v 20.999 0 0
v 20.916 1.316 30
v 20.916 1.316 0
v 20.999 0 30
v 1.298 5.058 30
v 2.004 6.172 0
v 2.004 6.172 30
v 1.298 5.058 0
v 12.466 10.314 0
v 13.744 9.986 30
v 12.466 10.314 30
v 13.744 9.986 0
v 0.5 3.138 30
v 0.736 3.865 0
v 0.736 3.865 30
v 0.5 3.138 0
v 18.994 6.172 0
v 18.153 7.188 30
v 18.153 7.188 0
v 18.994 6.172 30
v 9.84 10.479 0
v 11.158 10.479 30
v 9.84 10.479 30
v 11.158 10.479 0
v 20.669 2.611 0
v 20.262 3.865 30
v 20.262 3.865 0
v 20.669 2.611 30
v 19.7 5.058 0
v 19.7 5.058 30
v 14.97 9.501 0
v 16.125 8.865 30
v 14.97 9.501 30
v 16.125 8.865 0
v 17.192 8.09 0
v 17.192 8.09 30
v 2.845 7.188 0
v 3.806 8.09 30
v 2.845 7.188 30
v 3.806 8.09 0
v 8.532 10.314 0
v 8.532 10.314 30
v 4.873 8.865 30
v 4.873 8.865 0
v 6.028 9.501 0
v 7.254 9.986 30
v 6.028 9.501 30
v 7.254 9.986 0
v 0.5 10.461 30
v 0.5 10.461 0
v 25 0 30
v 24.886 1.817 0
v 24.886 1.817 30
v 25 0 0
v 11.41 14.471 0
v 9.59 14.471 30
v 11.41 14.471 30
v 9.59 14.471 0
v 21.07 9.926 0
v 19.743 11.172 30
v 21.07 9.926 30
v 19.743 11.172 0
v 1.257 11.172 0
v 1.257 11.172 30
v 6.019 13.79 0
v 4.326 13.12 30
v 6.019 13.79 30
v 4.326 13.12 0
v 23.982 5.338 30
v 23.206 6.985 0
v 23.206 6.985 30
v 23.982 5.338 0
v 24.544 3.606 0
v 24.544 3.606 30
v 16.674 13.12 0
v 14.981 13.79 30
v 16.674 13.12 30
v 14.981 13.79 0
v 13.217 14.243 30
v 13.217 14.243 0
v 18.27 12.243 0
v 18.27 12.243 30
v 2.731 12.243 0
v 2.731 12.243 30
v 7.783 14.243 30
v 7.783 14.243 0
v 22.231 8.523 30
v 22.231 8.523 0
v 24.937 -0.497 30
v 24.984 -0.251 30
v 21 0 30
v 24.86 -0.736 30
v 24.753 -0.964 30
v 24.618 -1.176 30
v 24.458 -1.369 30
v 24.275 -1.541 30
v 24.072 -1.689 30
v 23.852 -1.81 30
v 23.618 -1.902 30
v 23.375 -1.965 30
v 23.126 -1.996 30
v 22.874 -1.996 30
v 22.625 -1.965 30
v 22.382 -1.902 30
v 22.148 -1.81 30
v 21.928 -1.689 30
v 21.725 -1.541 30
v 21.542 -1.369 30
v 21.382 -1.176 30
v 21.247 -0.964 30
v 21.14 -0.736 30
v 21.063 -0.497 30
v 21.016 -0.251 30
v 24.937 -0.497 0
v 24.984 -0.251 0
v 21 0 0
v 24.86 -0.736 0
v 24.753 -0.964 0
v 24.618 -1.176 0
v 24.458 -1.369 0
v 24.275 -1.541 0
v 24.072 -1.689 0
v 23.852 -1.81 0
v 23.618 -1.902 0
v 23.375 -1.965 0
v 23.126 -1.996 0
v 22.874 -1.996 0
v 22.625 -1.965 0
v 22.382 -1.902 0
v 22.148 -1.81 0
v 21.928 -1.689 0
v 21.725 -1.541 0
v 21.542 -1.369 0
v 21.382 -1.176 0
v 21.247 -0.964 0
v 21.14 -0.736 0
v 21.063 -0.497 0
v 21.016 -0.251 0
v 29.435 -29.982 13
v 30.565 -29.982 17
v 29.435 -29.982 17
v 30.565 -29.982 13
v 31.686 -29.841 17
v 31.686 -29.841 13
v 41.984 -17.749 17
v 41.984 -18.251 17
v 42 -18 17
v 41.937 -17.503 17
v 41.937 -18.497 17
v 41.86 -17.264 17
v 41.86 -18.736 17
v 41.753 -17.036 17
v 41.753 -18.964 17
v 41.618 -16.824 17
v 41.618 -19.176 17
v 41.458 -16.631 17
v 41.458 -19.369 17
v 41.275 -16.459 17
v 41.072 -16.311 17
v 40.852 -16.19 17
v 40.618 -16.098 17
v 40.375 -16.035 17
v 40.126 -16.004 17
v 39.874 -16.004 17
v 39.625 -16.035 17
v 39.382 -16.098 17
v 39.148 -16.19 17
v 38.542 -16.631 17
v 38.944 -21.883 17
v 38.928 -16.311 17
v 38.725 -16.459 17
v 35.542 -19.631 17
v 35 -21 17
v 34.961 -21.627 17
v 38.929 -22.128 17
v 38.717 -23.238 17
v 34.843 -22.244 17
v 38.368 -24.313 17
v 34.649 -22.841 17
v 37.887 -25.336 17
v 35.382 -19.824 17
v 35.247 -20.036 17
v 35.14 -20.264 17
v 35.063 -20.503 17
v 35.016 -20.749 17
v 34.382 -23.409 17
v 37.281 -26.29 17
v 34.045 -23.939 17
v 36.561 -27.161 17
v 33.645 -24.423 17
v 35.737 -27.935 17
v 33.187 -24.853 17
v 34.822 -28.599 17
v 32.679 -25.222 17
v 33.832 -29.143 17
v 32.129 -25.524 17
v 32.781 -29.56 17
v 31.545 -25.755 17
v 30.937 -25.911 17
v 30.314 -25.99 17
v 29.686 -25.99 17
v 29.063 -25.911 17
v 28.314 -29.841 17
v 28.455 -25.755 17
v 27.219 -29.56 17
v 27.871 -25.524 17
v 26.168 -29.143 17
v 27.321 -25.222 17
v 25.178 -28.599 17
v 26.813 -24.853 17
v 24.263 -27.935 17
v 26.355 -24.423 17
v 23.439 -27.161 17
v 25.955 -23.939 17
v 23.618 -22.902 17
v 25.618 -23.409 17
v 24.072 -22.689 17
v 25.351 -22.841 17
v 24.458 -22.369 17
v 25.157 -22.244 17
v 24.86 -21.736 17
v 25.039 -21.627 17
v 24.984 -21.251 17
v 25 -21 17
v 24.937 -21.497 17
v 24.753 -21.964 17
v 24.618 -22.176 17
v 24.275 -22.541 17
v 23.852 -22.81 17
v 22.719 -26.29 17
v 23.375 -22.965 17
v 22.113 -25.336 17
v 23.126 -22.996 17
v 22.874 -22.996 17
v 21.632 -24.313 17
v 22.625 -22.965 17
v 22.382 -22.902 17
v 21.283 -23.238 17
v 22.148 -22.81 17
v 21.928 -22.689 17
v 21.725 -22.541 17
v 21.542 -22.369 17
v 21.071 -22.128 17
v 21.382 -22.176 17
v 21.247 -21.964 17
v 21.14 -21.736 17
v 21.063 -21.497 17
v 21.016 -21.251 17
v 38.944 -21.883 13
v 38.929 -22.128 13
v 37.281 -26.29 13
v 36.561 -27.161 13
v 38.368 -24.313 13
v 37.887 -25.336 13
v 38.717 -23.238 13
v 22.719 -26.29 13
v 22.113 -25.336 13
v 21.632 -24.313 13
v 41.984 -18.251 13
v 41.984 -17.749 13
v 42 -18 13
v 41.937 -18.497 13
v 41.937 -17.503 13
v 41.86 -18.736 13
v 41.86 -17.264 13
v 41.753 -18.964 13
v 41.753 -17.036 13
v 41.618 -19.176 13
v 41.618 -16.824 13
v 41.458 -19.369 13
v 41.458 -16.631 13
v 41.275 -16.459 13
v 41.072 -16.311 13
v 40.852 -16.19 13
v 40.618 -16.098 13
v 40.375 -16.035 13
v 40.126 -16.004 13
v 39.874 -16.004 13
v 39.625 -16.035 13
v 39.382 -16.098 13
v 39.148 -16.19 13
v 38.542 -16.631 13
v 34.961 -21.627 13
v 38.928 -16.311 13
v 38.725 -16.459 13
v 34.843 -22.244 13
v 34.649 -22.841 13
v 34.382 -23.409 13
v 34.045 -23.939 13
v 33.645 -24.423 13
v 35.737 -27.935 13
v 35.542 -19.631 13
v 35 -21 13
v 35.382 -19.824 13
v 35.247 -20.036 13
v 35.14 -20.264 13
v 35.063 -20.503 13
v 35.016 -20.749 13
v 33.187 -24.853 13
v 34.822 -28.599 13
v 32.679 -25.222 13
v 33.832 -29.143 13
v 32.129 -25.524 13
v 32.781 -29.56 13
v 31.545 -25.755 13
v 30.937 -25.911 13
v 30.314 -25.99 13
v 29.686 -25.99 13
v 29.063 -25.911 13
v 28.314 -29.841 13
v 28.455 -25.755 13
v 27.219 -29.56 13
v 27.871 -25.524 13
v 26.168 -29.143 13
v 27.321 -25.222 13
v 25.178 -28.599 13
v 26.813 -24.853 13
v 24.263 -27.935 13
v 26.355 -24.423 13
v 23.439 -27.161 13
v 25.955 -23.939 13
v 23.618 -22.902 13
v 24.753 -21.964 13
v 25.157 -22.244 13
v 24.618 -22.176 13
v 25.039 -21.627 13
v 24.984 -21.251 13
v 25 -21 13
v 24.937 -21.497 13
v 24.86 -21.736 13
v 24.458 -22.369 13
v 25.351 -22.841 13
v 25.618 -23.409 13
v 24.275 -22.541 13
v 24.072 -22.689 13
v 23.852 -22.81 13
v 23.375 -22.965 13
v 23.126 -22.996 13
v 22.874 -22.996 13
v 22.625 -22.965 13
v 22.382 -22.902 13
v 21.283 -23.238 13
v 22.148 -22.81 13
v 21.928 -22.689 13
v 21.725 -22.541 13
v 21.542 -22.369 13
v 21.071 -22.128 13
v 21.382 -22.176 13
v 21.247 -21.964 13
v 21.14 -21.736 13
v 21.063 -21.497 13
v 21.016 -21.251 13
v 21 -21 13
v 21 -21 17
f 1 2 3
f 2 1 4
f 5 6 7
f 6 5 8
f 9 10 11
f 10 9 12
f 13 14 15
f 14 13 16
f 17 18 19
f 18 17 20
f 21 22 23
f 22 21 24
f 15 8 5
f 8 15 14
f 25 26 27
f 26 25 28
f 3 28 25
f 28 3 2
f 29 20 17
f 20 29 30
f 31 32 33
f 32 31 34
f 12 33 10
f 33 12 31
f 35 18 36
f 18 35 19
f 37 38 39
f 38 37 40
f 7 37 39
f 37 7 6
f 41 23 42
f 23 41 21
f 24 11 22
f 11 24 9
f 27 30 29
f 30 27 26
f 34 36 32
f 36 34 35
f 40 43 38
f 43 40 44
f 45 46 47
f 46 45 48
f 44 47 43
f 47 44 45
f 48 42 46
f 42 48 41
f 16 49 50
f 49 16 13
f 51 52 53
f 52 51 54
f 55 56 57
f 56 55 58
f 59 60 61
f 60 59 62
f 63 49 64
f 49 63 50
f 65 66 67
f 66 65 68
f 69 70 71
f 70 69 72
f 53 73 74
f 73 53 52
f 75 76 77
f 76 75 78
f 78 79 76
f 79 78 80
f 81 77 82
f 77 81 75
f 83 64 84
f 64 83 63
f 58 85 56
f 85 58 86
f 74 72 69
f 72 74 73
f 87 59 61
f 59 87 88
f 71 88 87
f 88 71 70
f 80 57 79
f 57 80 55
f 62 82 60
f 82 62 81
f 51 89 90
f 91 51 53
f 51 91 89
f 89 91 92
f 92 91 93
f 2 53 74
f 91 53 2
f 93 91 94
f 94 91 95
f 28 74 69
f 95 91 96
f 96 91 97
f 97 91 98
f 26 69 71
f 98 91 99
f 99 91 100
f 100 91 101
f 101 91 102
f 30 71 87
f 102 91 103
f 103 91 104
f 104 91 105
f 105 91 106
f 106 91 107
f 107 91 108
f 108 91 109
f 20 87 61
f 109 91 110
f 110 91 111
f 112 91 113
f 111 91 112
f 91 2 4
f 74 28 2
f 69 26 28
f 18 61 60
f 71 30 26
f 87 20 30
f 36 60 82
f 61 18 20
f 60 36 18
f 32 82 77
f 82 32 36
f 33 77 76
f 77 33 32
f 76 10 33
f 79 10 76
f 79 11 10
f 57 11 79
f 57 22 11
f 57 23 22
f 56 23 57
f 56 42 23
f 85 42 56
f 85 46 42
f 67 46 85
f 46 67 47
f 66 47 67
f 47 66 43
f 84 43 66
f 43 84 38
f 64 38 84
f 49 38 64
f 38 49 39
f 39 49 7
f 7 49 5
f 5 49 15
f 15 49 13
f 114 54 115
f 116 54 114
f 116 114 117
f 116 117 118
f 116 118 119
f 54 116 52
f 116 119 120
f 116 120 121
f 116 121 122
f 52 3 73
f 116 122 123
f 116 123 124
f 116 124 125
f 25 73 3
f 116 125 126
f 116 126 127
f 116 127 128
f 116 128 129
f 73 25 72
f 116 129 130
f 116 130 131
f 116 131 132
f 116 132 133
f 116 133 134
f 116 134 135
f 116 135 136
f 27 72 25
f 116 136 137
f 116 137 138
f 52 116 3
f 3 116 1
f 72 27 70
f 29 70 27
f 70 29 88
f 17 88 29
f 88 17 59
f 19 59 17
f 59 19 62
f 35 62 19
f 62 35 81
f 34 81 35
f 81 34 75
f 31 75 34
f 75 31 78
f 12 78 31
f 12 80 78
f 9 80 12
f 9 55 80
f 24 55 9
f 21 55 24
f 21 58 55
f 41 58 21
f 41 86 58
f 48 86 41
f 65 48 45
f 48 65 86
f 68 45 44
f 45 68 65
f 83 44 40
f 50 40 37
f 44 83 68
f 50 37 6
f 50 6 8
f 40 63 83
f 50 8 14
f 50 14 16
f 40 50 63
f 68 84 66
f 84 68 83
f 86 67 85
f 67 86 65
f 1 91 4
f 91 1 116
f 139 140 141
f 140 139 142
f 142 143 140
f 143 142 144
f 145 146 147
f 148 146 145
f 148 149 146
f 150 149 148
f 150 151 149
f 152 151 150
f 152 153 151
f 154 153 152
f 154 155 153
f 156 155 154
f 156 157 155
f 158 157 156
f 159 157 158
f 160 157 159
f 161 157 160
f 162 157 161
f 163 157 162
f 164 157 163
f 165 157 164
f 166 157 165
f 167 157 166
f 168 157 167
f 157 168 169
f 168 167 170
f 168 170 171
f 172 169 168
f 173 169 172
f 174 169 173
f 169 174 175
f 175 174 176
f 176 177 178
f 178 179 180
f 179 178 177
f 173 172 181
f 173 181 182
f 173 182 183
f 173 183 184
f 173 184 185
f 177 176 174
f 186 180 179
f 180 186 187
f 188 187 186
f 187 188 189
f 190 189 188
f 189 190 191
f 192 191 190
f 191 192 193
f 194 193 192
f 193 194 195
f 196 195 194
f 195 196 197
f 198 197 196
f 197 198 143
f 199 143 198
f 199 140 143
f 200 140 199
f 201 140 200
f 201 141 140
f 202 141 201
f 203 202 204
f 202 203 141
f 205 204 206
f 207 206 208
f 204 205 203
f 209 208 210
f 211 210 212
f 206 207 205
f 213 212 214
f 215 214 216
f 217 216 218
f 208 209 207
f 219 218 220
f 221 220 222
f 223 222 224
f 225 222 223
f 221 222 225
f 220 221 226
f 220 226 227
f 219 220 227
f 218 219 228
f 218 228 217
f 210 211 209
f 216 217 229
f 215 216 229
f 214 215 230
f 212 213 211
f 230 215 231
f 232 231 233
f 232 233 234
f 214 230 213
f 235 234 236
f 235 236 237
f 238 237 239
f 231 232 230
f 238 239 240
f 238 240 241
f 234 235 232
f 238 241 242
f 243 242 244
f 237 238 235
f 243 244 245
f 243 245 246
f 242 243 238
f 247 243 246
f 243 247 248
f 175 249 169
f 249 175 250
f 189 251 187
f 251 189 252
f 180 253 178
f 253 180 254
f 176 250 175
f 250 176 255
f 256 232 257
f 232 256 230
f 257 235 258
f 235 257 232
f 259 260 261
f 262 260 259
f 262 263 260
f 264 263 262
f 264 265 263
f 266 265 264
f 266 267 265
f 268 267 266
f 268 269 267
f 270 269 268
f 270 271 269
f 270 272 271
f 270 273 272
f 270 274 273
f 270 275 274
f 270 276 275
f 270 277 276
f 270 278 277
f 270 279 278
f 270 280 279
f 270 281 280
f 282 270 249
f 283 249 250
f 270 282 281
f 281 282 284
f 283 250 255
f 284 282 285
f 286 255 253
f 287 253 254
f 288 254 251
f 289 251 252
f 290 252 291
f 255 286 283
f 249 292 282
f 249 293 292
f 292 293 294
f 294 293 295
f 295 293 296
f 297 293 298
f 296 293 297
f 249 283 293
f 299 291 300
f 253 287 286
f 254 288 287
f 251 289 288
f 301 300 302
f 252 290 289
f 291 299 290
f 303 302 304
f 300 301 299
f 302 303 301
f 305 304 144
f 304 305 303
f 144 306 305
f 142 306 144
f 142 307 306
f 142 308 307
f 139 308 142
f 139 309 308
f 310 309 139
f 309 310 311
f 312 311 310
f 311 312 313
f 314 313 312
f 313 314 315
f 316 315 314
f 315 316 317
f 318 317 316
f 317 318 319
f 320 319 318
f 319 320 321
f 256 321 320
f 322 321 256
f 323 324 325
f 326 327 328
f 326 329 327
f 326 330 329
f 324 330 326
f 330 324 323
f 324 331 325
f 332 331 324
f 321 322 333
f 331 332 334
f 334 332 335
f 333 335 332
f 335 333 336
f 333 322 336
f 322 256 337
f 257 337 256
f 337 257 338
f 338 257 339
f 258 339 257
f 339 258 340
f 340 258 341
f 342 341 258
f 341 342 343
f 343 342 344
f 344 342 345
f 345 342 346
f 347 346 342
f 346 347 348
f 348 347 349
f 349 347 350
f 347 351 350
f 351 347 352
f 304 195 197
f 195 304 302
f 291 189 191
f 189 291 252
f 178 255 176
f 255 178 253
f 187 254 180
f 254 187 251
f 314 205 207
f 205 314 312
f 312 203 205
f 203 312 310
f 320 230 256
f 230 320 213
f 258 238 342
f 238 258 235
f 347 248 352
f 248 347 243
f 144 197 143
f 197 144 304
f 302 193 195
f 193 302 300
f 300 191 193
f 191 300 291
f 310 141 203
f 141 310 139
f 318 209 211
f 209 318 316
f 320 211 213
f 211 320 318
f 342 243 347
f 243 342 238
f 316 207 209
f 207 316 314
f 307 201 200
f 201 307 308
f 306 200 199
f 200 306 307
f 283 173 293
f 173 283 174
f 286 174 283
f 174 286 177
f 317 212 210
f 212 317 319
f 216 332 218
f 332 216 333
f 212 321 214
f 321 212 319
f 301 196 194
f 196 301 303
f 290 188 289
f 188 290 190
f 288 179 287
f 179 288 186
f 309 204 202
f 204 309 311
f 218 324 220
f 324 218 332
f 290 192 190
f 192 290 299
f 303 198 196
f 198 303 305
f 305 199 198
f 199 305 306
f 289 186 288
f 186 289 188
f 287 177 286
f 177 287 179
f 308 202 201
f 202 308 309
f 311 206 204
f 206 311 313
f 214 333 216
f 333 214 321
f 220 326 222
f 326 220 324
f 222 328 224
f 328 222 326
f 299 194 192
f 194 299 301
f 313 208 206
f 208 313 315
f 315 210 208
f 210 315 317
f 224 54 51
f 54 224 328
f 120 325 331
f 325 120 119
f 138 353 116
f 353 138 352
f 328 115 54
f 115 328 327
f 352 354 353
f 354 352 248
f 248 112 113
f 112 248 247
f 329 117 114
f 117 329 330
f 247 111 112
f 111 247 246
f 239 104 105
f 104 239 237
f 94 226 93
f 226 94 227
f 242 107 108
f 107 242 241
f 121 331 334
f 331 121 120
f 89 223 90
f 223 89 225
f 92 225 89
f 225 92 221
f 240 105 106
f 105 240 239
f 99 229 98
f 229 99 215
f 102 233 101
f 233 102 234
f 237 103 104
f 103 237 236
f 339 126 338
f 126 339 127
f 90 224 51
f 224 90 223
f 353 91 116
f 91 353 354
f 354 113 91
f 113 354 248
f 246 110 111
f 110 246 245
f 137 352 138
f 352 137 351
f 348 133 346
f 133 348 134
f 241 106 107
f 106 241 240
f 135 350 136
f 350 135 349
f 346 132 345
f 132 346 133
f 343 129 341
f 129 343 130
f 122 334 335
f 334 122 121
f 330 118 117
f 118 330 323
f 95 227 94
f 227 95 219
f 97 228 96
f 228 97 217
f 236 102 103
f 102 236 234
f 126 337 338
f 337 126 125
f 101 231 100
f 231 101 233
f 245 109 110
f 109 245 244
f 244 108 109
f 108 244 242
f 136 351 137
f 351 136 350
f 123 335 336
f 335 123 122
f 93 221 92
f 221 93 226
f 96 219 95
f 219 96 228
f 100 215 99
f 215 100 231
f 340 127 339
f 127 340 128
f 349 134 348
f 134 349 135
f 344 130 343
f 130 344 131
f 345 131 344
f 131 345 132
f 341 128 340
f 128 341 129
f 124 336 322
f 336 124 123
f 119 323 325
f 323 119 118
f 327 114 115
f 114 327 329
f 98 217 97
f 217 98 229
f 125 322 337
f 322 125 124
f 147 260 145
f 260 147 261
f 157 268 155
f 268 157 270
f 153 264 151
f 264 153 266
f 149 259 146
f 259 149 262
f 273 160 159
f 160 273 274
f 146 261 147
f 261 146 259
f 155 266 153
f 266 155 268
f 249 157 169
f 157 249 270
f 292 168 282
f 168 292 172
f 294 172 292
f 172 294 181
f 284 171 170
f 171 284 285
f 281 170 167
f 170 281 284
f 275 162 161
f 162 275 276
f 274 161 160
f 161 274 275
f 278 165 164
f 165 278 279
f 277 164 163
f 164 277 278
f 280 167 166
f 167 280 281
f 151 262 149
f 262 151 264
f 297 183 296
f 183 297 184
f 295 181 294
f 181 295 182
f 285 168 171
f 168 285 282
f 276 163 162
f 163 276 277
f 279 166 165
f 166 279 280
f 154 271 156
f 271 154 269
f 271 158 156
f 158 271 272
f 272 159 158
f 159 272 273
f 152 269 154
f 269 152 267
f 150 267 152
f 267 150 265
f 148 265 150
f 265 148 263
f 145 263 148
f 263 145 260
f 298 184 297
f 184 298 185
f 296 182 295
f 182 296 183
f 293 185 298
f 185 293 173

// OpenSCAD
$fn=50;
/*
    Parametric Hooks For Picture Rails
    By Brian Khuu (2019)
    
    Many old houses still have picture rails that you can hang pictures or clocks on. This allow you to print a picture rail hook that fits exactly your picture rail. Just measure the diameter of your rail and specify the hook depth you requre. Also you are recommened to use the support required version as the no support version while easier to print, does not have as good center of balance.
*/


/* [Picture Rail Spec] */
// Centered Hook mode (Requires support but is easier to mount)
centeredHook=true;
// Diameter of picture rail 
dia=21;
// Mount thickness
thickness=4;
// Mount Width
width=30;
// Standoff of the mount away from the wall
standoff=0.5;

/* [Picture Rail Spec] */
// Hook Diameter
hookdia=10;
// Hook Flange
hookflange=3;
// Hook Width
hookwidth=4;

// Calc
hookspacing=dia;

difference()
{
    translate([dia,0,0])
    union()
    {
        // Mount
        translate([-dia/2,0,0])
        difference()
        {
            cylinder(r=dia/2+thickness, h=width);
            translate([0,-dia/2,-1])
                cube([dia,dia/2,width+2]);
        }
        if (!centeredHook)
        { /* Off centered hooks for no support required printing */
            // Hook
            translate([0,0,0])
            hull()
            {
                translate([thickness/2,0,0])
                    cylinder(r=thickness/2, h=width);
                translate([thickness/2,-hookspacing,0])
                    cylinder(r=thickness/2, h=hookwidth);
            }
            translate([hookdia/2+thickness,-hookspacing, hookwidth/2])
                difference()
                {
                    cylinder(r=hookdia/2+thickness, h=hookwidth, center=true);
                    translate([0,0,0])
                        cylinder(r=hookdia/2, h=hookwidth+2, center=true);
                    translate([0,hookdia/2,0])
                        cube([hookdia,hookdia,hookwidth+2], center=true);
                    translate([hookdia/2,hookdia/2,0])
                        cube([hookdia,hookdia,hookwidth+2], center=true);
                }
            translate([hookdia/2+thickness,-hookspacing, 0])
                hull()
                {
                    translate([hookdia/2+thickness/2,0,0])
                        cylinder(r=thickness/2, h=hookwidth);

                    translate([hookdia/2+thickness/2+hookflange,+hookflange,0])
                        cylinder(r=thickness/2, h=hookwidth);
                }
        }
        else
        { /* Centered Hook (Support required) */
            // Hook
            translate([0,0,0])
            hull()
            {
                translate([thickness/2,0,0])
                    cylinder(r=thickness/2, h=width);
                translate([thickness/2,-hookspacing, width/2-hookwidth/2])
                    cylinder(r=thickness/2, h=hookwidth);
            }
            translate([hookdia/2+thickness,-hookspacing, width/2])
                difference()
                {
                    cylinder(r=hookdia/2+thickness, h=hookwidth, center=true);
                    translate([0,0,0])
                        cylinder(r=hookdia/2, h=hookwidth+2, center=true);
                    translate([0,hookdia/2,0])
                        cube([hookdia,hookdia,hookwidth+2], center=true);
                    translate([hookdia/2,hookdia/2,0])
                        cube([hookdia,hookdia,hookwidth+2], center=true);
                }
            translate([hookdia/2+thickness,-hookspacing, width/2-hookwidth/2])
                hull()
                {
                    translate([hookdia/2+thickness/2,0,0])
                        cylinder(r=thickness/2, h=hookwidth);

                    translate([hookdia/2+thickness/2+hookflange,+hookflange,0])
                        cylinder(r=thickness/2, h=hookwidth);
                }
        }

    }
    translate([0,0,(width)/2])
    union()
    {
        // Wall Model
        translate([dia-0.001,0,-(width+2)/2])
            hull()
            {
                translate([-dia/2,0,0])
                    cylinder(r=dia/2, h=width+2);
                translate([-dia/2,-dia-10,0])
                    cylinder(r=dia/2, h=width+2);
            }
        translate([-1000+standoff,-(1000)/2,-(width+2)/2])
            cube([1000,1000,width+2]);
    }
}
